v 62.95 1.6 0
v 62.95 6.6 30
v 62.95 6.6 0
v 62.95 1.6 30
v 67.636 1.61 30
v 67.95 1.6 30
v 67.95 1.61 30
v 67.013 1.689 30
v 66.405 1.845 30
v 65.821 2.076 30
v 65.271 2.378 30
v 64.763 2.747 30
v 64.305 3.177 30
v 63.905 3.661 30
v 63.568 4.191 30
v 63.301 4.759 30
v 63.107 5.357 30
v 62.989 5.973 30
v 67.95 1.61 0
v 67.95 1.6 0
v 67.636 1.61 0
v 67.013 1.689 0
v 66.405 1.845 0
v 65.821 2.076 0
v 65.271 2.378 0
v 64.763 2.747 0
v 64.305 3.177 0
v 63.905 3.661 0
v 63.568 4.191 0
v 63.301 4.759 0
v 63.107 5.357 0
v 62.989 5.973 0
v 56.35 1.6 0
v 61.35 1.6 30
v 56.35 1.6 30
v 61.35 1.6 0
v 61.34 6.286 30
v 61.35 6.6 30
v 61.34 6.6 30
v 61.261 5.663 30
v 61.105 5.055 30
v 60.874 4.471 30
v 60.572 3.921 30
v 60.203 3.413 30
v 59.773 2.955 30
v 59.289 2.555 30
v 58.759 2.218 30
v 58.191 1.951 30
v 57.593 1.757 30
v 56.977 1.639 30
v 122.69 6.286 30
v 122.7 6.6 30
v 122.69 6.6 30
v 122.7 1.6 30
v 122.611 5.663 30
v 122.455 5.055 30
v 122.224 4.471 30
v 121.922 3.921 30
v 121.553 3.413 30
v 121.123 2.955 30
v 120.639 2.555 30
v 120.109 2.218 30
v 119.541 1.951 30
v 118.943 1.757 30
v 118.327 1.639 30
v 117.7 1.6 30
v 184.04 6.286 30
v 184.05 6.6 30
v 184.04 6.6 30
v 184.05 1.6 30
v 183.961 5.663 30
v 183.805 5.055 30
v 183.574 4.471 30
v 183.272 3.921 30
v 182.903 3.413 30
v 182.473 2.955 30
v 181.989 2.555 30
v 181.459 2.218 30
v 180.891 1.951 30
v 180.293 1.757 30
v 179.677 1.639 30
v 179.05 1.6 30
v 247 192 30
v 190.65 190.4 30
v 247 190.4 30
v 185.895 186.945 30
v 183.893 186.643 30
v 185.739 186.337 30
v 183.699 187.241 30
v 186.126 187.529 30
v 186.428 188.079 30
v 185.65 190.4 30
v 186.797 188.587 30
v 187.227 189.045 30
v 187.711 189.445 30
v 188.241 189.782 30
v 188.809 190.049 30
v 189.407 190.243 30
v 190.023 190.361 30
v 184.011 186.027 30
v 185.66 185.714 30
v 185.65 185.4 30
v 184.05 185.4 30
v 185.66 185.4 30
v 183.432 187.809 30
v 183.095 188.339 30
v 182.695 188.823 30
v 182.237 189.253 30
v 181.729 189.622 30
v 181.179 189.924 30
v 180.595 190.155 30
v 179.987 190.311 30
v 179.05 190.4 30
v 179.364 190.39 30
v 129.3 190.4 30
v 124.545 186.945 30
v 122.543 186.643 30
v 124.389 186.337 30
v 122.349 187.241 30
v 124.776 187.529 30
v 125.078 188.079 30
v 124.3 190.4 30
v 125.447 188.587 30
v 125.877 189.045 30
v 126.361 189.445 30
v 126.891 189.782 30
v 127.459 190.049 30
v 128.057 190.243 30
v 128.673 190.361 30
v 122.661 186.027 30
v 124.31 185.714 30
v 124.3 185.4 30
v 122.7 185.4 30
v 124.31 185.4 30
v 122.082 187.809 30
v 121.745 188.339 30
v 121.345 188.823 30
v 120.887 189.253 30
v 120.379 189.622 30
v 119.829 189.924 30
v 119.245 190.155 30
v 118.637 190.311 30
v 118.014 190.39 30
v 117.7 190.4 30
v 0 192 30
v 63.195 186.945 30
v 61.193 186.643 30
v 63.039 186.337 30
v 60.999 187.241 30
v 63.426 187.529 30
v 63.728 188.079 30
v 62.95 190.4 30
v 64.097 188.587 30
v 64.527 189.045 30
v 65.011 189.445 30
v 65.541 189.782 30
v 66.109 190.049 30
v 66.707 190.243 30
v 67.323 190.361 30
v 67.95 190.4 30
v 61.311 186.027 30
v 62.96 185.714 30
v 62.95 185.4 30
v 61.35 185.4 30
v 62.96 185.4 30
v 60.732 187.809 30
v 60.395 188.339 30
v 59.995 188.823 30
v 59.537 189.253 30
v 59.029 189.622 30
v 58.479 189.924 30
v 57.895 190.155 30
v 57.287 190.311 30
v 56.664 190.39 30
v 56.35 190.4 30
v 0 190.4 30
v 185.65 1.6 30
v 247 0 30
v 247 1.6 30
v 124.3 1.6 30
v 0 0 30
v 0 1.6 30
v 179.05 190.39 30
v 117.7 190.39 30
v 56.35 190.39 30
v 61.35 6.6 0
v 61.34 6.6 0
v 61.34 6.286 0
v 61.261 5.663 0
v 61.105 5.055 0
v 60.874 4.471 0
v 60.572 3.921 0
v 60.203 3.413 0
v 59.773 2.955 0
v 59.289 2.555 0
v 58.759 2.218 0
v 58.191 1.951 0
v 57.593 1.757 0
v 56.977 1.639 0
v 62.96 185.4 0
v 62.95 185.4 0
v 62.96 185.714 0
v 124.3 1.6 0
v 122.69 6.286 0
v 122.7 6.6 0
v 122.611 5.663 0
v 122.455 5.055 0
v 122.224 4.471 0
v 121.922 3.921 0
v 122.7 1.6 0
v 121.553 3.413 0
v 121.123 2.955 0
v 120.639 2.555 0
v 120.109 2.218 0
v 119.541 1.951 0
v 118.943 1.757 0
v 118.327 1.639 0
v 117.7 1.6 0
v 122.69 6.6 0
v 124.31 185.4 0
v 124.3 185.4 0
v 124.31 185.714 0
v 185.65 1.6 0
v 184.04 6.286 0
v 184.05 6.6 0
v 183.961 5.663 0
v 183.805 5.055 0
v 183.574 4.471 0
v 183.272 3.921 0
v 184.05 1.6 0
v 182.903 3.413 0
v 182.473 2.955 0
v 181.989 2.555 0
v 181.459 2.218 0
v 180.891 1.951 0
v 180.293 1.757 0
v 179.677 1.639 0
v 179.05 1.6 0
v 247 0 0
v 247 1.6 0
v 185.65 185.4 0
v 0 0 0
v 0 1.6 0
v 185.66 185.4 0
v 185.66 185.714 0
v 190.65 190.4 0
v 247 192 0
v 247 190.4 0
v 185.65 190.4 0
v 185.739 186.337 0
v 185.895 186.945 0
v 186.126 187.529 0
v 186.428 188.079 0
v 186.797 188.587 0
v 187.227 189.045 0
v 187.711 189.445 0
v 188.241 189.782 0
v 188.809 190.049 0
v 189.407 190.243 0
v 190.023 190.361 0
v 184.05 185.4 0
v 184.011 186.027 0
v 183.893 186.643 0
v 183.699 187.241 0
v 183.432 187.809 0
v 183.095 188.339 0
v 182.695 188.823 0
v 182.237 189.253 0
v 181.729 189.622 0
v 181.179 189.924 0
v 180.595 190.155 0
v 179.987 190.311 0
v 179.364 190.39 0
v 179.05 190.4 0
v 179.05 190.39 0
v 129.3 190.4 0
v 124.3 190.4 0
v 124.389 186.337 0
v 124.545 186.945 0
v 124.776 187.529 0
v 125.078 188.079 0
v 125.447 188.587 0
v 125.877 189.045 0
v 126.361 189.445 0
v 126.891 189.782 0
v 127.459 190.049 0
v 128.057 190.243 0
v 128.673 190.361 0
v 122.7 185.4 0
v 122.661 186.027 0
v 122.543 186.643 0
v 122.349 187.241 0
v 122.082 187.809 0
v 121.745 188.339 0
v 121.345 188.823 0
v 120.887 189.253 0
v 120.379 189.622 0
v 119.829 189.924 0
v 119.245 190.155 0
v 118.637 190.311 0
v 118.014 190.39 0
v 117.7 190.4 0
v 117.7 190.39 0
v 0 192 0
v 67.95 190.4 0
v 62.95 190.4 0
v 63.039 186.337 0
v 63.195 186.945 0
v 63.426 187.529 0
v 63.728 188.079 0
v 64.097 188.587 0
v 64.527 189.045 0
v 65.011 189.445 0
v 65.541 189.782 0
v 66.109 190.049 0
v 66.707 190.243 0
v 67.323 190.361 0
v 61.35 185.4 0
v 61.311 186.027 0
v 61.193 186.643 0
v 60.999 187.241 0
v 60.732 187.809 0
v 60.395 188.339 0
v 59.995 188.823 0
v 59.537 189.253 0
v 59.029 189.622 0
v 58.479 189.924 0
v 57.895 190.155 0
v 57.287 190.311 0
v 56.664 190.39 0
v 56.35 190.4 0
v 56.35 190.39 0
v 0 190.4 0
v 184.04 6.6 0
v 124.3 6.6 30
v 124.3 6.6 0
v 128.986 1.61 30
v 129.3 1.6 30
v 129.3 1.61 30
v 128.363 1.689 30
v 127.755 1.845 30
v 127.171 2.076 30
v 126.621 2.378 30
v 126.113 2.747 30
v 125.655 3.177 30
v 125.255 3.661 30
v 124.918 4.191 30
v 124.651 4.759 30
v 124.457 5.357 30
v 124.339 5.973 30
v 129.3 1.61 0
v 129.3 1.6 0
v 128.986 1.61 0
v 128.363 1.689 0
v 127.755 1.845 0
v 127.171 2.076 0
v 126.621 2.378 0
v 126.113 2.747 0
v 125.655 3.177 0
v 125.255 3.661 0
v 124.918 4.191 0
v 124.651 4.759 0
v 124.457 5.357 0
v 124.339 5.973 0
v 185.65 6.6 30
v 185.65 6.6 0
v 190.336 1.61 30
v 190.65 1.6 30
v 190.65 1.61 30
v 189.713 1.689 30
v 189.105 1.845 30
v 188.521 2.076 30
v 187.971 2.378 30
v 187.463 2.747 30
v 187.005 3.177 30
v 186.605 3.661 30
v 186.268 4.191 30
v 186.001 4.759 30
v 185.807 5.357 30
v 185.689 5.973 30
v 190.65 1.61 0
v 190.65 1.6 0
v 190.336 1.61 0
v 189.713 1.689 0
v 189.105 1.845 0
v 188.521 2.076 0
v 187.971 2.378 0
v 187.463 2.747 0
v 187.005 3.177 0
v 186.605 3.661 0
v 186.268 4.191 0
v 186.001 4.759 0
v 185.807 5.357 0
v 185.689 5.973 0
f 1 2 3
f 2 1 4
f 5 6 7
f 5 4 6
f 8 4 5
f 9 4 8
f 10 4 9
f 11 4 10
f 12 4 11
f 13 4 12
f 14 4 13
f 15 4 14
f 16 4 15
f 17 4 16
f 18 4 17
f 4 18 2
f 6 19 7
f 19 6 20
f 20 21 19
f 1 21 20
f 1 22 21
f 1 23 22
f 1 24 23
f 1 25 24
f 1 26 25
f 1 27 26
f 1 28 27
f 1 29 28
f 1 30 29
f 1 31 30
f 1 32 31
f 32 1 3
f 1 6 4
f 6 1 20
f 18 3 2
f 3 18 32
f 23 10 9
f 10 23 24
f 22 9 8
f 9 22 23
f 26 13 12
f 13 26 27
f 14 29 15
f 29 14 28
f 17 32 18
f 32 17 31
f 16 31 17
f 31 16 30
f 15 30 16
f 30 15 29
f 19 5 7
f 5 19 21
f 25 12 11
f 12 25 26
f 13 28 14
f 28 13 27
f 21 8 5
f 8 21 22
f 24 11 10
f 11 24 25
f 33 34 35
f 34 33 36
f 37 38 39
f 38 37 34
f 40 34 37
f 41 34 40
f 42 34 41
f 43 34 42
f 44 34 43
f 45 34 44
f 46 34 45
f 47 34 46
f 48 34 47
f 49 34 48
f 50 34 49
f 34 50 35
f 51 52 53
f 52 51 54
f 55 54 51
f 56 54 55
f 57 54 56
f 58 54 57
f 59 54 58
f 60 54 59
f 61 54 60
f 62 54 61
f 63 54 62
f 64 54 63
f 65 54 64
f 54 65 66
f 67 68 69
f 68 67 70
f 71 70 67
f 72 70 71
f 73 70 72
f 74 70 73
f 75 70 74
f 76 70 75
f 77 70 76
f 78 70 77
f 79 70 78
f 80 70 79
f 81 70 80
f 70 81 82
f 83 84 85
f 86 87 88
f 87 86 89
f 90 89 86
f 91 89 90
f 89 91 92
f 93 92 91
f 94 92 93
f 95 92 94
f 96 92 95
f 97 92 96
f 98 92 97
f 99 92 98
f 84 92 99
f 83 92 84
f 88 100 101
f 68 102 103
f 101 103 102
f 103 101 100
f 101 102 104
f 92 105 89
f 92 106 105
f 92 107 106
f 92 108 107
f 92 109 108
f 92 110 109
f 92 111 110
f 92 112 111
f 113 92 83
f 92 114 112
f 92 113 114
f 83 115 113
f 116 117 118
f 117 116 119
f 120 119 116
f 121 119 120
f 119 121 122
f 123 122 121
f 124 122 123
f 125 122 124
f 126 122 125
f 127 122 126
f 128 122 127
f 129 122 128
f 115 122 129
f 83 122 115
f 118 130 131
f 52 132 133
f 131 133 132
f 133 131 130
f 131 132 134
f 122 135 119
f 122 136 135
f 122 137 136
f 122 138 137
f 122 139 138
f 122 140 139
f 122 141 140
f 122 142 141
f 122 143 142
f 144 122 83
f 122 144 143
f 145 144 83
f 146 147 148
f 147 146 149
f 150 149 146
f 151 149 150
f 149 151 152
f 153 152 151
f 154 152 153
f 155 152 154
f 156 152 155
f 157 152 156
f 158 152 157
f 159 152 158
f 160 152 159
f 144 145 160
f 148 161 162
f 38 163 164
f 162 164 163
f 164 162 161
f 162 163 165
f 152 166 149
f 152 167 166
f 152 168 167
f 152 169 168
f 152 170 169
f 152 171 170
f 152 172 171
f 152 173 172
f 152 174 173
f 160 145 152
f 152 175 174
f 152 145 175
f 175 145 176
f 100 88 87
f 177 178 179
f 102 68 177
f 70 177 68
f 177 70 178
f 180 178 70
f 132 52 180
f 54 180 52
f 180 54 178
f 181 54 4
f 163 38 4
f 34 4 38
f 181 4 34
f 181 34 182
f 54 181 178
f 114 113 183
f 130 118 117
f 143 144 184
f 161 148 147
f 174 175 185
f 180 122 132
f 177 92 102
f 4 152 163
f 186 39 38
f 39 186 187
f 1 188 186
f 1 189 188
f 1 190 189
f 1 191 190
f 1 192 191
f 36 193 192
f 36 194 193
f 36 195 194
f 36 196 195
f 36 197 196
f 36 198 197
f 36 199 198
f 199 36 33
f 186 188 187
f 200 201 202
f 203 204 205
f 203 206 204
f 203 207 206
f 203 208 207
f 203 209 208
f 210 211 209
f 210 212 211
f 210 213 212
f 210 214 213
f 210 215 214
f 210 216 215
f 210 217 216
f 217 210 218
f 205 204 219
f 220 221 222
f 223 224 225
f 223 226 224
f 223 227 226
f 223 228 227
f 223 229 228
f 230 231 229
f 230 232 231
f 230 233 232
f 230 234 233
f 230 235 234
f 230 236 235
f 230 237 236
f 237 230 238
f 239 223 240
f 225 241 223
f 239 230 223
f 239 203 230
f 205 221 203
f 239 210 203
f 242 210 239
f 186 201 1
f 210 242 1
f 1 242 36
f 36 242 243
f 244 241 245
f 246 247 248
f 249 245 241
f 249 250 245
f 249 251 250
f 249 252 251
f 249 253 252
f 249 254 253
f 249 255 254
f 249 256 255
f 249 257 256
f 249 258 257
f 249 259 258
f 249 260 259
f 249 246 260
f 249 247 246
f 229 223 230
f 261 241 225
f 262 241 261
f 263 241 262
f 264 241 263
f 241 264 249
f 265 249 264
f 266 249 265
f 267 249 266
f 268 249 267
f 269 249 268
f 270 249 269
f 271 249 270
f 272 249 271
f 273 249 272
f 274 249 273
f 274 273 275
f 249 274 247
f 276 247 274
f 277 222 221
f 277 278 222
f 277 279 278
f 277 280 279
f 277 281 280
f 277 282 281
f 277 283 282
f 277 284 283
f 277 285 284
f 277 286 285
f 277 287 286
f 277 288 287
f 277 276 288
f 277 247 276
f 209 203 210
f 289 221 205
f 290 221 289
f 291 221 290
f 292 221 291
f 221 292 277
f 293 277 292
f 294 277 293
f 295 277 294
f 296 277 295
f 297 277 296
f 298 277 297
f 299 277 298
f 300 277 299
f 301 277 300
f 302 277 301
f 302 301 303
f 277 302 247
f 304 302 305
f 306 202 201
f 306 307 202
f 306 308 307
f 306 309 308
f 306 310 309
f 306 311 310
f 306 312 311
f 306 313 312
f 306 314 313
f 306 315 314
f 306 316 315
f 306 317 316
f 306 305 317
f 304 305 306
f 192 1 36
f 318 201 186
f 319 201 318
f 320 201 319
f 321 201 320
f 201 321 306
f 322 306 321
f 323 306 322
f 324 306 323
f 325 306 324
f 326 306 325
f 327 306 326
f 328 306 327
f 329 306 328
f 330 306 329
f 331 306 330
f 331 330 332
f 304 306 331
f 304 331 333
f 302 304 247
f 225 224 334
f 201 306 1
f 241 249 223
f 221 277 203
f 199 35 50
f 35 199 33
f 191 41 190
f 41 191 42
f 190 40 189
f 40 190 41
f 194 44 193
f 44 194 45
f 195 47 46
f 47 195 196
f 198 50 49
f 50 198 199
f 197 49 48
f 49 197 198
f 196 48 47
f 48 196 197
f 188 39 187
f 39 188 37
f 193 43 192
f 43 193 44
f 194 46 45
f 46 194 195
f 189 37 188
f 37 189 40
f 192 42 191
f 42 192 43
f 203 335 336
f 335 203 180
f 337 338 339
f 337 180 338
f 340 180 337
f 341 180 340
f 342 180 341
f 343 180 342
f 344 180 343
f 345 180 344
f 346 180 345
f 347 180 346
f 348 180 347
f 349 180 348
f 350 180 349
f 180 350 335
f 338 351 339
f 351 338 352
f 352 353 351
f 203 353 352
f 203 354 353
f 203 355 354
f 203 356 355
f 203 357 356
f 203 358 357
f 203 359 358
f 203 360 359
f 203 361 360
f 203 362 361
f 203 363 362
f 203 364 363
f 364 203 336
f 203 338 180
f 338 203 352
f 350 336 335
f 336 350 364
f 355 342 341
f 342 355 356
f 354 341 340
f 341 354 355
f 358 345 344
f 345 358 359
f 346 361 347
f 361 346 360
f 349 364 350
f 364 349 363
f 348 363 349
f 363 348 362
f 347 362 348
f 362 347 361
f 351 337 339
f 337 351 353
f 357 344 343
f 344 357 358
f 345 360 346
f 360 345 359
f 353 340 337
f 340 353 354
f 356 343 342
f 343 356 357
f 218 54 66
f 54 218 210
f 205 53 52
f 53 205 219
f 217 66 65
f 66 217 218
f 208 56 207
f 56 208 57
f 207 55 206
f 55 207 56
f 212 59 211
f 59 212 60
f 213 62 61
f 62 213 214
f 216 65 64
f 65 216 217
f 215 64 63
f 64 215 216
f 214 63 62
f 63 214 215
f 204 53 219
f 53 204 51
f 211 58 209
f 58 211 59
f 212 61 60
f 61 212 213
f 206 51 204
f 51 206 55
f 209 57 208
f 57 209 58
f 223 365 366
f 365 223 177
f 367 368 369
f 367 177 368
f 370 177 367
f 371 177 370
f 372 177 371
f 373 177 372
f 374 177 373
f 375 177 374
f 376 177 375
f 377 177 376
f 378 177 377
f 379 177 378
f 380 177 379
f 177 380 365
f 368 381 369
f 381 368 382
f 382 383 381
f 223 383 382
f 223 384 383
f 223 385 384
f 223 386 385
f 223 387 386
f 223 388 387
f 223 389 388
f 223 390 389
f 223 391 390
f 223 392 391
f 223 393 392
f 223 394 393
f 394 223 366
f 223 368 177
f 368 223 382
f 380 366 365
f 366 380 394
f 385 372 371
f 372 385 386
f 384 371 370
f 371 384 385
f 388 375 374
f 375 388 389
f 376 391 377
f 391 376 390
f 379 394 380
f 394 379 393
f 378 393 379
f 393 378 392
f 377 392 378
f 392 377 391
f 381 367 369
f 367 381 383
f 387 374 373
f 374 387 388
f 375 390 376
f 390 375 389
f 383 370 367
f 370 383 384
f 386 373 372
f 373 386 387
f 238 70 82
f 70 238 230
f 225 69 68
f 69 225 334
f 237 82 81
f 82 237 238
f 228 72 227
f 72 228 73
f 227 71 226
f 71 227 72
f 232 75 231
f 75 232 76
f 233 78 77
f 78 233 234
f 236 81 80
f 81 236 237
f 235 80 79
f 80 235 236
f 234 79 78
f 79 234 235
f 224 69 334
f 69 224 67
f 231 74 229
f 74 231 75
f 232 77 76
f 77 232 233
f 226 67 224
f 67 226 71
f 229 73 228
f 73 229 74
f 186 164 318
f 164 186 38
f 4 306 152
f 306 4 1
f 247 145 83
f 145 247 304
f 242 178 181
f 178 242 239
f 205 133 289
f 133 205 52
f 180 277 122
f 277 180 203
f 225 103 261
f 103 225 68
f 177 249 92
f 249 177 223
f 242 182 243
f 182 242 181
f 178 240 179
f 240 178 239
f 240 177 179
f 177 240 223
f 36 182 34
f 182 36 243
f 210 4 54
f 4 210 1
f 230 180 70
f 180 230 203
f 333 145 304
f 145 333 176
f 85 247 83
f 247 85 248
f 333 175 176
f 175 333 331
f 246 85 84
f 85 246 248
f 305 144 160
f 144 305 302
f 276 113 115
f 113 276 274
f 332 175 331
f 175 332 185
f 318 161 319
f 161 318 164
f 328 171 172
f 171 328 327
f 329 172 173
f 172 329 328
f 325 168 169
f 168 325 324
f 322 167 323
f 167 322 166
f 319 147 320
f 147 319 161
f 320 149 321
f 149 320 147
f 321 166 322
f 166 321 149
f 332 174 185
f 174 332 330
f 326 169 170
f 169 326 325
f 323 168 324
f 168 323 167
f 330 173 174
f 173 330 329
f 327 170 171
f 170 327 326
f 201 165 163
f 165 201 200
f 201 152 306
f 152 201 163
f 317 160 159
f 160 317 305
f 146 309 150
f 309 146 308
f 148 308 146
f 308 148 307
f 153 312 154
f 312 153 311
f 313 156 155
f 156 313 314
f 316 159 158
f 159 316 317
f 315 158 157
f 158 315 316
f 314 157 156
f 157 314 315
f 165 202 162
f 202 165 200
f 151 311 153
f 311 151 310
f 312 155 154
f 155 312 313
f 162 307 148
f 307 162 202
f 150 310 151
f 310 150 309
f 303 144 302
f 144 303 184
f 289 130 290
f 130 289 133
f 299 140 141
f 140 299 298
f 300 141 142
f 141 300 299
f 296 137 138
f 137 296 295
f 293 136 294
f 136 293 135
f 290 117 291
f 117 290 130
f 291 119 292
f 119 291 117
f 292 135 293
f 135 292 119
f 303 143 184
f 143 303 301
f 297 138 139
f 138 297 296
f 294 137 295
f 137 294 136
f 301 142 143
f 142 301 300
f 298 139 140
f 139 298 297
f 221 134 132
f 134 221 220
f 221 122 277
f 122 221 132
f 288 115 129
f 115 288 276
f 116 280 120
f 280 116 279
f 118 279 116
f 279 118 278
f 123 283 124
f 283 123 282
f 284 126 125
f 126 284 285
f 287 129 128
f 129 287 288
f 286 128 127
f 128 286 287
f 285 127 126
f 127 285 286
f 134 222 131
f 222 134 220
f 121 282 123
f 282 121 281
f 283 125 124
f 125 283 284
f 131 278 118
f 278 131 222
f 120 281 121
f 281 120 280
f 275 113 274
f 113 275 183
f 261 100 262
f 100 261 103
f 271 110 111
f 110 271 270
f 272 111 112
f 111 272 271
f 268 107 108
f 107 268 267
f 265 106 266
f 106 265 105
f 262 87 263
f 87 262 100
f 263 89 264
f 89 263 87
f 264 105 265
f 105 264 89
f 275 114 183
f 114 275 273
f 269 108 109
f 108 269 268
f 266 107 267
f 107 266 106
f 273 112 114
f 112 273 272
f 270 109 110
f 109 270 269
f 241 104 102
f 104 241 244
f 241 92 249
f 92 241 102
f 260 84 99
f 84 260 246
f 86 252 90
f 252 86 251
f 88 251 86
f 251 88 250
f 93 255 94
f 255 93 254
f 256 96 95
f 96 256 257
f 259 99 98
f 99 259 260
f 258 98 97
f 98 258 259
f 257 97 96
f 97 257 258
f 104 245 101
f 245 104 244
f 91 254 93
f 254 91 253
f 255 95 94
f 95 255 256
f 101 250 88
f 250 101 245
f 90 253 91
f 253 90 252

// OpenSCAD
/**
 * Drawer dividers
 *
 * Pierre Quélin
 * pierre.quelin.1972@gmail.com
 *
 */

// Inside Box Dimensions
// Box Length (X)
Length=247;
// Box Width (Y)
// TODO 132 + 192 = 324 
Width=192;
// Box Height (Z)
Height=30;

// Number of sections
NbLengthSections=1;
NbWidthSections=4;

// Wall thickness
Thickness=1.6; // Good speed
// Rounding radius
Radius = 5;


// Fix $fn (number of facets used to generate an arc) value
$fn=50;

module round() 
{
    difference()
    {
      cube([Radius, Radius, Height]);
      translate([Radius, Radius, -1]) cylinder(h=(Height+2),r=Radius);
   }
};

module rounding( stepX, stepY )
{
    if ((stepX !=NbWidthSections) && (stepY !=NbLengthSections))
    {
        translate([stepX*((Length-Thickness)/NbWidthSections)+Thickness, stepY*((Width-Thickness)/NbLengthSections)+Thickness, 0]) round();
    }
     
    if ((stepX !=0) && (stepY !=NbLengthSections))
    {
        translate([stepX*((Length-Thickness)/NbWidthSections), stepY*((Width-Thickness)/NbLengthSections)+Thickness, 0]) rotate([0,0,90]) round();
    }
     
    if ((stepX !=0) && (stepY !=0))
    {
        translate([stepX*((Length-Thickness)/NbWidthSections), stepY*((Width-Thickness)/NbLengthSections), 0]) rotate([0,0,180]) round();
    }
     
    if ((stepX !=NbWidthSections) && (stepY !=0))
    {
        translate([stepX*((Length-Thickness)/NbWidthSections)+Thickness, stepY*((Width-Thickness)/NbLengthSections), 0]) rotate([0,0,270]) round();
    }
}


module drawerdividers()
{
    union()
    {
        // X dividers
        for(x = [1:NbWidthSections-1])
            translate([x*((Length-Thickness)/NbWidthSections), 0, 0]) cube([Thickness, Width, Height]);

        // Y dividers
        for(y = [0:NbLengthSections])
            translate([0, y*((Width-Thickness)/NbLengthSections), 0]) cube([Length, Thickness, Height]);
       
        // Rounding
        for(x = [1:NbWidthSections-1])
            for(y = [0:NbLengthSections])
                rounding(x, y);
    };
};

drawerdividers();
